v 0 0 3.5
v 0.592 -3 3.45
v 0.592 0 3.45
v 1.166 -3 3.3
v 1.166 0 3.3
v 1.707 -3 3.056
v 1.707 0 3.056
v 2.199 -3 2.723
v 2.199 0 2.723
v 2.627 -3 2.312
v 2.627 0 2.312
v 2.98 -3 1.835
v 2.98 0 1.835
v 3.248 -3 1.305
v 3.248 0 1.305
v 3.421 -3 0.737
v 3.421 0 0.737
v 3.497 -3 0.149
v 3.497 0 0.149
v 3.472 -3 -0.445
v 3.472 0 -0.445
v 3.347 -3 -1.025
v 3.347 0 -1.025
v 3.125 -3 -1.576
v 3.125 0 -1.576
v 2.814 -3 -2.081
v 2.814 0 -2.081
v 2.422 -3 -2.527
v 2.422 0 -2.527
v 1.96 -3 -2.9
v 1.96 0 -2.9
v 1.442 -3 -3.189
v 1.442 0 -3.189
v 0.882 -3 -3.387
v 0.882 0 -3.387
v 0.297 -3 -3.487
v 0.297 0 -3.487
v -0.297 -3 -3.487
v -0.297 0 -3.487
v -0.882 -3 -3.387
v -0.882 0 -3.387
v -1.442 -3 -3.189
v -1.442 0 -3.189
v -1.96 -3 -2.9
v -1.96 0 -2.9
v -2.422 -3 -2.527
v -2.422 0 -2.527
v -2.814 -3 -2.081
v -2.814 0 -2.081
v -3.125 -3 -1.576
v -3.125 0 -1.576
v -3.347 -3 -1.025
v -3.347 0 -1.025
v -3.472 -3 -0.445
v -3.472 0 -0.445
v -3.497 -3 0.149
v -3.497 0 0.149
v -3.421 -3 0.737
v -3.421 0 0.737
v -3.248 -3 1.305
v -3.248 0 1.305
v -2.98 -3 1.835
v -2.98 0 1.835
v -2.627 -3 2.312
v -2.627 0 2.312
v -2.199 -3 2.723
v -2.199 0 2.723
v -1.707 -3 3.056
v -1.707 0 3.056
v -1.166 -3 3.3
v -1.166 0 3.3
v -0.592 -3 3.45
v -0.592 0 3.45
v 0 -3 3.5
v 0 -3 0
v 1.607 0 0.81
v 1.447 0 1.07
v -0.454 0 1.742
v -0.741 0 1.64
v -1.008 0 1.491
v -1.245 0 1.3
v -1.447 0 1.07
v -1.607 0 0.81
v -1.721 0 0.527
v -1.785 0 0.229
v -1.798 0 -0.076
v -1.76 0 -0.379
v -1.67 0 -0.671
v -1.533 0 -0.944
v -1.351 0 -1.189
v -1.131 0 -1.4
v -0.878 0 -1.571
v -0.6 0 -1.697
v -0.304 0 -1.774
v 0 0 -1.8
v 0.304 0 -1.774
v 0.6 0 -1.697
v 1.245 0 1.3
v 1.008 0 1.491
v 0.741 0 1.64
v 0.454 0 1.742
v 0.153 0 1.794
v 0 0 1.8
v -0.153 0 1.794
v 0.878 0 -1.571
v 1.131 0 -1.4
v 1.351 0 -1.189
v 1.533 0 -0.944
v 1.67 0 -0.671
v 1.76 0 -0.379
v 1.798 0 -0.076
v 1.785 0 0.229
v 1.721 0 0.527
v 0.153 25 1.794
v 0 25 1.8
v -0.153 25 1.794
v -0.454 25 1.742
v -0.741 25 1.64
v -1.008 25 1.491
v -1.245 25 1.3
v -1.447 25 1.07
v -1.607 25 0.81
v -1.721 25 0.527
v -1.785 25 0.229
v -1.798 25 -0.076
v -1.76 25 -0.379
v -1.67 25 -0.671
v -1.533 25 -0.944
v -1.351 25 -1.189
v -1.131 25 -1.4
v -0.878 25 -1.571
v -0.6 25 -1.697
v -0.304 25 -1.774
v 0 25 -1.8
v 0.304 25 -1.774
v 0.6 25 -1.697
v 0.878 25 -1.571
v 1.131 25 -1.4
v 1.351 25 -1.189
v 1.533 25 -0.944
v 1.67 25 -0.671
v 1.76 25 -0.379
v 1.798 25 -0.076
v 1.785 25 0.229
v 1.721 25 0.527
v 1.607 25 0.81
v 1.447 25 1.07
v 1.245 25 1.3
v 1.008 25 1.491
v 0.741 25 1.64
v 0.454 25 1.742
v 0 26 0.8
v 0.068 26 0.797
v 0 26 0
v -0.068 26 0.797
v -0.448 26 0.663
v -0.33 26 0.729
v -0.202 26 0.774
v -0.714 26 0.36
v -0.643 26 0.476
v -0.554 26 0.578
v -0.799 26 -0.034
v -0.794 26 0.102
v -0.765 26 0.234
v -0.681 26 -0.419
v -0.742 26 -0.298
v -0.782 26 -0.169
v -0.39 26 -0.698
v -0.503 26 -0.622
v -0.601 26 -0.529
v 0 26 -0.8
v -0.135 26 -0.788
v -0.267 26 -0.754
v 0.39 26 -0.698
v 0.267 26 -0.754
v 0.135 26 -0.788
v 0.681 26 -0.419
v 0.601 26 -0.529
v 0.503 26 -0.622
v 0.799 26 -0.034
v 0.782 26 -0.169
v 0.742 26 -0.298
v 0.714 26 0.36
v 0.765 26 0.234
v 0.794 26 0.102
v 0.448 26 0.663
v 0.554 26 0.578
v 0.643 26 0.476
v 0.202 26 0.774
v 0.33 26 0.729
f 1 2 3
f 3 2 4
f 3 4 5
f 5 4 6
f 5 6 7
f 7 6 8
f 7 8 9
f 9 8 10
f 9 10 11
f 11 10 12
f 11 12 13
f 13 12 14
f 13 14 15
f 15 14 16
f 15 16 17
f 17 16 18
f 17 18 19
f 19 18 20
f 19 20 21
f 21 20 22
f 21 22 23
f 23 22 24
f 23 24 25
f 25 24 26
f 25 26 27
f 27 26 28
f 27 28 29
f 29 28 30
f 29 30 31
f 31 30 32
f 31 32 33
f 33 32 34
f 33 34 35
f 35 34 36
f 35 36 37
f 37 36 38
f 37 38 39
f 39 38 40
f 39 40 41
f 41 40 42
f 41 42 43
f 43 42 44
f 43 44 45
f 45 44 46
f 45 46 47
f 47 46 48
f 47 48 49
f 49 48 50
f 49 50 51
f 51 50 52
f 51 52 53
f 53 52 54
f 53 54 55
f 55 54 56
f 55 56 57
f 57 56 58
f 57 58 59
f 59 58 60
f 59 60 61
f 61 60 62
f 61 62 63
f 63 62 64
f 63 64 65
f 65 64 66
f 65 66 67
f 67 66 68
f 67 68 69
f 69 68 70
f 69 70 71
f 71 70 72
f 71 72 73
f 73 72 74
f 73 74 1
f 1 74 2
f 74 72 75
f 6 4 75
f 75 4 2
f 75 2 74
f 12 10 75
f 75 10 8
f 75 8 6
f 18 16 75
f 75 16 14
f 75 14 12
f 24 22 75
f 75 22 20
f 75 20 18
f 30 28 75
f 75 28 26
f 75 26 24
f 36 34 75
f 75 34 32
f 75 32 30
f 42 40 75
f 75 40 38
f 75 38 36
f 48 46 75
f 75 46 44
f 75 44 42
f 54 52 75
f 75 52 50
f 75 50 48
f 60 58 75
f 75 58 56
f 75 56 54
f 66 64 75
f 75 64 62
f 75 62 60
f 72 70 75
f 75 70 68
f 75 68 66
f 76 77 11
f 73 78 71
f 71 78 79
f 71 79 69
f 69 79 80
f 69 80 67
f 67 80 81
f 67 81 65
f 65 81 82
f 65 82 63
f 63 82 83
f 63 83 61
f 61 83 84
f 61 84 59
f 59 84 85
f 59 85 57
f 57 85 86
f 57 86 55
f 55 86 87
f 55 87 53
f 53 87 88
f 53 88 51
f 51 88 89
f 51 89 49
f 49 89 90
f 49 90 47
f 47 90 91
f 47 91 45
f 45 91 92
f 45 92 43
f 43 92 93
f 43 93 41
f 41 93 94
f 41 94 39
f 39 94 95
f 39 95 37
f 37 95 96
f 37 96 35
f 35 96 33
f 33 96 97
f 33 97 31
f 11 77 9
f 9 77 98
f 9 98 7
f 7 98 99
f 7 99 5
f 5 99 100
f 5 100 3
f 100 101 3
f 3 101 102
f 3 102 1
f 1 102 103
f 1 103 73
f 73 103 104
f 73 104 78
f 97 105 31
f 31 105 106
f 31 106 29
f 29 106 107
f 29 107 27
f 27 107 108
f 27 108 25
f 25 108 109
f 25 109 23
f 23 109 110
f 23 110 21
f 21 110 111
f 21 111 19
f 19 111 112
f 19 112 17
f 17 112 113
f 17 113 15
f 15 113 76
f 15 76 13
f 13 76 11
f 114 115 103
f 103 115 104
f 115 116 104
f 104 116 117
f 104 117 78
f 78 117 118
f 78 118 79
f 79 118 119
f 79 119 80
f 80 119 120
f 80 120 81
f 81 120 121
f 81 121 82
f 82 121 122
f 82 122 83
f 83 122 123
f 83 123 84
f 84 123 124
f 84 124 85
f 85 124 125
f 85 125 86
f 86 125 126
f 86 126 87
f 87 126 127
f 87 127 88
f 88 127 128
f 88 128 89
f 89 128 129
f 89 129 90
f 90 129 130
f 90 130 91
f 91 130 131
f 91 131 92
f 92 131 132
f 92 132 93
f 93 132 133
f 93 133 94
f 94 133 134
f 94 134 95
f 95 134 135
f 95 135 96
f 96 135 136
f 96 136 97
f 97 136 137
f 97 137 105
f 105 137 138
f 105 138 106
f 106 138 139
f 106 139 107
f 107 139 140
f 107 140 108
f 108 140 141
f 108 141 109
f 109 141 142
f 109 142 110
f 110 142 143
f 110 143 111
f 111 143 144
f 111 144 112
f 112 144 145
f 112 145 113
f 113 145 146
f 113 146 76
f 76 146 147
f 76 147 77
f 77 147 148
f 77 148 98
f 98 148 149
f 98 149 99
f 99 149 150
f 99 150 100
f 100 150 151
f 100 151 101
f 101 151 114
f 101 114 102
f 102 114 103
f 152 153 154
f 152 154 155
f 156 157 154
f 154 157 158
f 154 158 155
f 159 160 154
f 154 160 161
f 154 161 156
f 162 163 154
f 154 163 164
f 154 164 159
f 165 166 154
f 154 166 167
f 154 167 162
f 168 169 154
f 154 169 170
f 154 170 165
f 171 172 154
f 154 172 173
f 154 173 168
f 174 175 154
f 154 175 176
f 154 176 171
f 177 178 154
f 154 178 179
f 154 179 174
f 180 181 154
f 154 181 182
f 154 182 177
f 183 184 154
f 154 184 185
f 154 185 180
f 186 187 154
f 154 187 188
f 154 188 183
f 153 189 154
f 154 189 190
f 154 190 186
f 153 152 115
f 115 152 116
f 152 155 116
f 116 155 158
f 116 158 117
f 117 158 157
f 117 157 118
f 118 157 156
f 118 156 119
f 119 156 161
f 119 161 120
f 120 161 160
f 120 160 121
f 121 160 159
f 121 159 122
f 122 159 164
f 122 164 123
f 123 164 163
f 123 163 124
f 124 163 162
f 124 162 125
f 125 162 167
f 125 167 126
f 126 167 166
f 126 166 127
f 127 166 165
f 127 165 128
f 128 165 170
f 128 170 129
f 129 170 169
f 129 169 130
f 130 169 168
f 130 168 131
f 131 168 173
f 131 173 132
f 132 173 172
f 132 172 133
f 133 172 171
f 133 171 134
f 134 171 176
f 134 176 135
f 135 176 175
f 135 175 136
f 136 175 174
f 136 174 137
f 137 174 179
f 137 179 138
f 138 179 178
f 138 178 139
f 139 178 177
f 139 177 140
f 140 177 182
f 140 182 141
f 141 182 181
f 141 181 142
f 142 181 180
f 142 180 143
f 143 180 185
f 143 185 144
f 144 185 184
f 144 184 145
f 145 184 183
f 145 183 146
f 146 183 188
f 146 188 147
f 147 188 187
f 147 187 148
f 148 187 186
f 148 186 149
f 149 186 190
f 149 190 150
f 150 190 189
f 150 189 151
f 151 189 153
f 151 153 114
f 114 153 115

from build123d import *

# Parameters (mm, degrees)
SKETCH_1_R      = 3.5
EXTRUDE_1_DEPTH = 3
SKETCH_1_3_R    = 1.8
EXTRUDE_2_DEPTH = 26
CHAMFER_1_SIZE  = 1


with BuildPart() as part:
    # Эскиз1 → Бобышка-Вытянуть1 (new body)
    with BuildSketch(Plane(origin=(0, 0, 0), x_dir=(1, 0, 0), z_dir=(0, 1, 0))):
        Circle(SKETCH_1_R)
    extrude(amount=-EXTRUDE_1_DEPTH)

    # Эскиз1<3> → Бобышка-Вытянуть2 (add)
    with BuildSketch(Plane(origin=(0, 0, 0), x_dir=(1, 0, 0), z_dir=(0, 1, 0))):
        Circle(SKETCH_1_3_R)
    extrude(amount=EXTRUDE_2_DEPTH)

    # Фаска1
    chamfer_1_edges = [part.edges().sort_by_distance(p)[0] for p in [
        (-1.8, 26, 0),
    ]]
    chamfer(chamfer_1_edges, length=CHAMFER_1_SIZE)


solid = part.part
